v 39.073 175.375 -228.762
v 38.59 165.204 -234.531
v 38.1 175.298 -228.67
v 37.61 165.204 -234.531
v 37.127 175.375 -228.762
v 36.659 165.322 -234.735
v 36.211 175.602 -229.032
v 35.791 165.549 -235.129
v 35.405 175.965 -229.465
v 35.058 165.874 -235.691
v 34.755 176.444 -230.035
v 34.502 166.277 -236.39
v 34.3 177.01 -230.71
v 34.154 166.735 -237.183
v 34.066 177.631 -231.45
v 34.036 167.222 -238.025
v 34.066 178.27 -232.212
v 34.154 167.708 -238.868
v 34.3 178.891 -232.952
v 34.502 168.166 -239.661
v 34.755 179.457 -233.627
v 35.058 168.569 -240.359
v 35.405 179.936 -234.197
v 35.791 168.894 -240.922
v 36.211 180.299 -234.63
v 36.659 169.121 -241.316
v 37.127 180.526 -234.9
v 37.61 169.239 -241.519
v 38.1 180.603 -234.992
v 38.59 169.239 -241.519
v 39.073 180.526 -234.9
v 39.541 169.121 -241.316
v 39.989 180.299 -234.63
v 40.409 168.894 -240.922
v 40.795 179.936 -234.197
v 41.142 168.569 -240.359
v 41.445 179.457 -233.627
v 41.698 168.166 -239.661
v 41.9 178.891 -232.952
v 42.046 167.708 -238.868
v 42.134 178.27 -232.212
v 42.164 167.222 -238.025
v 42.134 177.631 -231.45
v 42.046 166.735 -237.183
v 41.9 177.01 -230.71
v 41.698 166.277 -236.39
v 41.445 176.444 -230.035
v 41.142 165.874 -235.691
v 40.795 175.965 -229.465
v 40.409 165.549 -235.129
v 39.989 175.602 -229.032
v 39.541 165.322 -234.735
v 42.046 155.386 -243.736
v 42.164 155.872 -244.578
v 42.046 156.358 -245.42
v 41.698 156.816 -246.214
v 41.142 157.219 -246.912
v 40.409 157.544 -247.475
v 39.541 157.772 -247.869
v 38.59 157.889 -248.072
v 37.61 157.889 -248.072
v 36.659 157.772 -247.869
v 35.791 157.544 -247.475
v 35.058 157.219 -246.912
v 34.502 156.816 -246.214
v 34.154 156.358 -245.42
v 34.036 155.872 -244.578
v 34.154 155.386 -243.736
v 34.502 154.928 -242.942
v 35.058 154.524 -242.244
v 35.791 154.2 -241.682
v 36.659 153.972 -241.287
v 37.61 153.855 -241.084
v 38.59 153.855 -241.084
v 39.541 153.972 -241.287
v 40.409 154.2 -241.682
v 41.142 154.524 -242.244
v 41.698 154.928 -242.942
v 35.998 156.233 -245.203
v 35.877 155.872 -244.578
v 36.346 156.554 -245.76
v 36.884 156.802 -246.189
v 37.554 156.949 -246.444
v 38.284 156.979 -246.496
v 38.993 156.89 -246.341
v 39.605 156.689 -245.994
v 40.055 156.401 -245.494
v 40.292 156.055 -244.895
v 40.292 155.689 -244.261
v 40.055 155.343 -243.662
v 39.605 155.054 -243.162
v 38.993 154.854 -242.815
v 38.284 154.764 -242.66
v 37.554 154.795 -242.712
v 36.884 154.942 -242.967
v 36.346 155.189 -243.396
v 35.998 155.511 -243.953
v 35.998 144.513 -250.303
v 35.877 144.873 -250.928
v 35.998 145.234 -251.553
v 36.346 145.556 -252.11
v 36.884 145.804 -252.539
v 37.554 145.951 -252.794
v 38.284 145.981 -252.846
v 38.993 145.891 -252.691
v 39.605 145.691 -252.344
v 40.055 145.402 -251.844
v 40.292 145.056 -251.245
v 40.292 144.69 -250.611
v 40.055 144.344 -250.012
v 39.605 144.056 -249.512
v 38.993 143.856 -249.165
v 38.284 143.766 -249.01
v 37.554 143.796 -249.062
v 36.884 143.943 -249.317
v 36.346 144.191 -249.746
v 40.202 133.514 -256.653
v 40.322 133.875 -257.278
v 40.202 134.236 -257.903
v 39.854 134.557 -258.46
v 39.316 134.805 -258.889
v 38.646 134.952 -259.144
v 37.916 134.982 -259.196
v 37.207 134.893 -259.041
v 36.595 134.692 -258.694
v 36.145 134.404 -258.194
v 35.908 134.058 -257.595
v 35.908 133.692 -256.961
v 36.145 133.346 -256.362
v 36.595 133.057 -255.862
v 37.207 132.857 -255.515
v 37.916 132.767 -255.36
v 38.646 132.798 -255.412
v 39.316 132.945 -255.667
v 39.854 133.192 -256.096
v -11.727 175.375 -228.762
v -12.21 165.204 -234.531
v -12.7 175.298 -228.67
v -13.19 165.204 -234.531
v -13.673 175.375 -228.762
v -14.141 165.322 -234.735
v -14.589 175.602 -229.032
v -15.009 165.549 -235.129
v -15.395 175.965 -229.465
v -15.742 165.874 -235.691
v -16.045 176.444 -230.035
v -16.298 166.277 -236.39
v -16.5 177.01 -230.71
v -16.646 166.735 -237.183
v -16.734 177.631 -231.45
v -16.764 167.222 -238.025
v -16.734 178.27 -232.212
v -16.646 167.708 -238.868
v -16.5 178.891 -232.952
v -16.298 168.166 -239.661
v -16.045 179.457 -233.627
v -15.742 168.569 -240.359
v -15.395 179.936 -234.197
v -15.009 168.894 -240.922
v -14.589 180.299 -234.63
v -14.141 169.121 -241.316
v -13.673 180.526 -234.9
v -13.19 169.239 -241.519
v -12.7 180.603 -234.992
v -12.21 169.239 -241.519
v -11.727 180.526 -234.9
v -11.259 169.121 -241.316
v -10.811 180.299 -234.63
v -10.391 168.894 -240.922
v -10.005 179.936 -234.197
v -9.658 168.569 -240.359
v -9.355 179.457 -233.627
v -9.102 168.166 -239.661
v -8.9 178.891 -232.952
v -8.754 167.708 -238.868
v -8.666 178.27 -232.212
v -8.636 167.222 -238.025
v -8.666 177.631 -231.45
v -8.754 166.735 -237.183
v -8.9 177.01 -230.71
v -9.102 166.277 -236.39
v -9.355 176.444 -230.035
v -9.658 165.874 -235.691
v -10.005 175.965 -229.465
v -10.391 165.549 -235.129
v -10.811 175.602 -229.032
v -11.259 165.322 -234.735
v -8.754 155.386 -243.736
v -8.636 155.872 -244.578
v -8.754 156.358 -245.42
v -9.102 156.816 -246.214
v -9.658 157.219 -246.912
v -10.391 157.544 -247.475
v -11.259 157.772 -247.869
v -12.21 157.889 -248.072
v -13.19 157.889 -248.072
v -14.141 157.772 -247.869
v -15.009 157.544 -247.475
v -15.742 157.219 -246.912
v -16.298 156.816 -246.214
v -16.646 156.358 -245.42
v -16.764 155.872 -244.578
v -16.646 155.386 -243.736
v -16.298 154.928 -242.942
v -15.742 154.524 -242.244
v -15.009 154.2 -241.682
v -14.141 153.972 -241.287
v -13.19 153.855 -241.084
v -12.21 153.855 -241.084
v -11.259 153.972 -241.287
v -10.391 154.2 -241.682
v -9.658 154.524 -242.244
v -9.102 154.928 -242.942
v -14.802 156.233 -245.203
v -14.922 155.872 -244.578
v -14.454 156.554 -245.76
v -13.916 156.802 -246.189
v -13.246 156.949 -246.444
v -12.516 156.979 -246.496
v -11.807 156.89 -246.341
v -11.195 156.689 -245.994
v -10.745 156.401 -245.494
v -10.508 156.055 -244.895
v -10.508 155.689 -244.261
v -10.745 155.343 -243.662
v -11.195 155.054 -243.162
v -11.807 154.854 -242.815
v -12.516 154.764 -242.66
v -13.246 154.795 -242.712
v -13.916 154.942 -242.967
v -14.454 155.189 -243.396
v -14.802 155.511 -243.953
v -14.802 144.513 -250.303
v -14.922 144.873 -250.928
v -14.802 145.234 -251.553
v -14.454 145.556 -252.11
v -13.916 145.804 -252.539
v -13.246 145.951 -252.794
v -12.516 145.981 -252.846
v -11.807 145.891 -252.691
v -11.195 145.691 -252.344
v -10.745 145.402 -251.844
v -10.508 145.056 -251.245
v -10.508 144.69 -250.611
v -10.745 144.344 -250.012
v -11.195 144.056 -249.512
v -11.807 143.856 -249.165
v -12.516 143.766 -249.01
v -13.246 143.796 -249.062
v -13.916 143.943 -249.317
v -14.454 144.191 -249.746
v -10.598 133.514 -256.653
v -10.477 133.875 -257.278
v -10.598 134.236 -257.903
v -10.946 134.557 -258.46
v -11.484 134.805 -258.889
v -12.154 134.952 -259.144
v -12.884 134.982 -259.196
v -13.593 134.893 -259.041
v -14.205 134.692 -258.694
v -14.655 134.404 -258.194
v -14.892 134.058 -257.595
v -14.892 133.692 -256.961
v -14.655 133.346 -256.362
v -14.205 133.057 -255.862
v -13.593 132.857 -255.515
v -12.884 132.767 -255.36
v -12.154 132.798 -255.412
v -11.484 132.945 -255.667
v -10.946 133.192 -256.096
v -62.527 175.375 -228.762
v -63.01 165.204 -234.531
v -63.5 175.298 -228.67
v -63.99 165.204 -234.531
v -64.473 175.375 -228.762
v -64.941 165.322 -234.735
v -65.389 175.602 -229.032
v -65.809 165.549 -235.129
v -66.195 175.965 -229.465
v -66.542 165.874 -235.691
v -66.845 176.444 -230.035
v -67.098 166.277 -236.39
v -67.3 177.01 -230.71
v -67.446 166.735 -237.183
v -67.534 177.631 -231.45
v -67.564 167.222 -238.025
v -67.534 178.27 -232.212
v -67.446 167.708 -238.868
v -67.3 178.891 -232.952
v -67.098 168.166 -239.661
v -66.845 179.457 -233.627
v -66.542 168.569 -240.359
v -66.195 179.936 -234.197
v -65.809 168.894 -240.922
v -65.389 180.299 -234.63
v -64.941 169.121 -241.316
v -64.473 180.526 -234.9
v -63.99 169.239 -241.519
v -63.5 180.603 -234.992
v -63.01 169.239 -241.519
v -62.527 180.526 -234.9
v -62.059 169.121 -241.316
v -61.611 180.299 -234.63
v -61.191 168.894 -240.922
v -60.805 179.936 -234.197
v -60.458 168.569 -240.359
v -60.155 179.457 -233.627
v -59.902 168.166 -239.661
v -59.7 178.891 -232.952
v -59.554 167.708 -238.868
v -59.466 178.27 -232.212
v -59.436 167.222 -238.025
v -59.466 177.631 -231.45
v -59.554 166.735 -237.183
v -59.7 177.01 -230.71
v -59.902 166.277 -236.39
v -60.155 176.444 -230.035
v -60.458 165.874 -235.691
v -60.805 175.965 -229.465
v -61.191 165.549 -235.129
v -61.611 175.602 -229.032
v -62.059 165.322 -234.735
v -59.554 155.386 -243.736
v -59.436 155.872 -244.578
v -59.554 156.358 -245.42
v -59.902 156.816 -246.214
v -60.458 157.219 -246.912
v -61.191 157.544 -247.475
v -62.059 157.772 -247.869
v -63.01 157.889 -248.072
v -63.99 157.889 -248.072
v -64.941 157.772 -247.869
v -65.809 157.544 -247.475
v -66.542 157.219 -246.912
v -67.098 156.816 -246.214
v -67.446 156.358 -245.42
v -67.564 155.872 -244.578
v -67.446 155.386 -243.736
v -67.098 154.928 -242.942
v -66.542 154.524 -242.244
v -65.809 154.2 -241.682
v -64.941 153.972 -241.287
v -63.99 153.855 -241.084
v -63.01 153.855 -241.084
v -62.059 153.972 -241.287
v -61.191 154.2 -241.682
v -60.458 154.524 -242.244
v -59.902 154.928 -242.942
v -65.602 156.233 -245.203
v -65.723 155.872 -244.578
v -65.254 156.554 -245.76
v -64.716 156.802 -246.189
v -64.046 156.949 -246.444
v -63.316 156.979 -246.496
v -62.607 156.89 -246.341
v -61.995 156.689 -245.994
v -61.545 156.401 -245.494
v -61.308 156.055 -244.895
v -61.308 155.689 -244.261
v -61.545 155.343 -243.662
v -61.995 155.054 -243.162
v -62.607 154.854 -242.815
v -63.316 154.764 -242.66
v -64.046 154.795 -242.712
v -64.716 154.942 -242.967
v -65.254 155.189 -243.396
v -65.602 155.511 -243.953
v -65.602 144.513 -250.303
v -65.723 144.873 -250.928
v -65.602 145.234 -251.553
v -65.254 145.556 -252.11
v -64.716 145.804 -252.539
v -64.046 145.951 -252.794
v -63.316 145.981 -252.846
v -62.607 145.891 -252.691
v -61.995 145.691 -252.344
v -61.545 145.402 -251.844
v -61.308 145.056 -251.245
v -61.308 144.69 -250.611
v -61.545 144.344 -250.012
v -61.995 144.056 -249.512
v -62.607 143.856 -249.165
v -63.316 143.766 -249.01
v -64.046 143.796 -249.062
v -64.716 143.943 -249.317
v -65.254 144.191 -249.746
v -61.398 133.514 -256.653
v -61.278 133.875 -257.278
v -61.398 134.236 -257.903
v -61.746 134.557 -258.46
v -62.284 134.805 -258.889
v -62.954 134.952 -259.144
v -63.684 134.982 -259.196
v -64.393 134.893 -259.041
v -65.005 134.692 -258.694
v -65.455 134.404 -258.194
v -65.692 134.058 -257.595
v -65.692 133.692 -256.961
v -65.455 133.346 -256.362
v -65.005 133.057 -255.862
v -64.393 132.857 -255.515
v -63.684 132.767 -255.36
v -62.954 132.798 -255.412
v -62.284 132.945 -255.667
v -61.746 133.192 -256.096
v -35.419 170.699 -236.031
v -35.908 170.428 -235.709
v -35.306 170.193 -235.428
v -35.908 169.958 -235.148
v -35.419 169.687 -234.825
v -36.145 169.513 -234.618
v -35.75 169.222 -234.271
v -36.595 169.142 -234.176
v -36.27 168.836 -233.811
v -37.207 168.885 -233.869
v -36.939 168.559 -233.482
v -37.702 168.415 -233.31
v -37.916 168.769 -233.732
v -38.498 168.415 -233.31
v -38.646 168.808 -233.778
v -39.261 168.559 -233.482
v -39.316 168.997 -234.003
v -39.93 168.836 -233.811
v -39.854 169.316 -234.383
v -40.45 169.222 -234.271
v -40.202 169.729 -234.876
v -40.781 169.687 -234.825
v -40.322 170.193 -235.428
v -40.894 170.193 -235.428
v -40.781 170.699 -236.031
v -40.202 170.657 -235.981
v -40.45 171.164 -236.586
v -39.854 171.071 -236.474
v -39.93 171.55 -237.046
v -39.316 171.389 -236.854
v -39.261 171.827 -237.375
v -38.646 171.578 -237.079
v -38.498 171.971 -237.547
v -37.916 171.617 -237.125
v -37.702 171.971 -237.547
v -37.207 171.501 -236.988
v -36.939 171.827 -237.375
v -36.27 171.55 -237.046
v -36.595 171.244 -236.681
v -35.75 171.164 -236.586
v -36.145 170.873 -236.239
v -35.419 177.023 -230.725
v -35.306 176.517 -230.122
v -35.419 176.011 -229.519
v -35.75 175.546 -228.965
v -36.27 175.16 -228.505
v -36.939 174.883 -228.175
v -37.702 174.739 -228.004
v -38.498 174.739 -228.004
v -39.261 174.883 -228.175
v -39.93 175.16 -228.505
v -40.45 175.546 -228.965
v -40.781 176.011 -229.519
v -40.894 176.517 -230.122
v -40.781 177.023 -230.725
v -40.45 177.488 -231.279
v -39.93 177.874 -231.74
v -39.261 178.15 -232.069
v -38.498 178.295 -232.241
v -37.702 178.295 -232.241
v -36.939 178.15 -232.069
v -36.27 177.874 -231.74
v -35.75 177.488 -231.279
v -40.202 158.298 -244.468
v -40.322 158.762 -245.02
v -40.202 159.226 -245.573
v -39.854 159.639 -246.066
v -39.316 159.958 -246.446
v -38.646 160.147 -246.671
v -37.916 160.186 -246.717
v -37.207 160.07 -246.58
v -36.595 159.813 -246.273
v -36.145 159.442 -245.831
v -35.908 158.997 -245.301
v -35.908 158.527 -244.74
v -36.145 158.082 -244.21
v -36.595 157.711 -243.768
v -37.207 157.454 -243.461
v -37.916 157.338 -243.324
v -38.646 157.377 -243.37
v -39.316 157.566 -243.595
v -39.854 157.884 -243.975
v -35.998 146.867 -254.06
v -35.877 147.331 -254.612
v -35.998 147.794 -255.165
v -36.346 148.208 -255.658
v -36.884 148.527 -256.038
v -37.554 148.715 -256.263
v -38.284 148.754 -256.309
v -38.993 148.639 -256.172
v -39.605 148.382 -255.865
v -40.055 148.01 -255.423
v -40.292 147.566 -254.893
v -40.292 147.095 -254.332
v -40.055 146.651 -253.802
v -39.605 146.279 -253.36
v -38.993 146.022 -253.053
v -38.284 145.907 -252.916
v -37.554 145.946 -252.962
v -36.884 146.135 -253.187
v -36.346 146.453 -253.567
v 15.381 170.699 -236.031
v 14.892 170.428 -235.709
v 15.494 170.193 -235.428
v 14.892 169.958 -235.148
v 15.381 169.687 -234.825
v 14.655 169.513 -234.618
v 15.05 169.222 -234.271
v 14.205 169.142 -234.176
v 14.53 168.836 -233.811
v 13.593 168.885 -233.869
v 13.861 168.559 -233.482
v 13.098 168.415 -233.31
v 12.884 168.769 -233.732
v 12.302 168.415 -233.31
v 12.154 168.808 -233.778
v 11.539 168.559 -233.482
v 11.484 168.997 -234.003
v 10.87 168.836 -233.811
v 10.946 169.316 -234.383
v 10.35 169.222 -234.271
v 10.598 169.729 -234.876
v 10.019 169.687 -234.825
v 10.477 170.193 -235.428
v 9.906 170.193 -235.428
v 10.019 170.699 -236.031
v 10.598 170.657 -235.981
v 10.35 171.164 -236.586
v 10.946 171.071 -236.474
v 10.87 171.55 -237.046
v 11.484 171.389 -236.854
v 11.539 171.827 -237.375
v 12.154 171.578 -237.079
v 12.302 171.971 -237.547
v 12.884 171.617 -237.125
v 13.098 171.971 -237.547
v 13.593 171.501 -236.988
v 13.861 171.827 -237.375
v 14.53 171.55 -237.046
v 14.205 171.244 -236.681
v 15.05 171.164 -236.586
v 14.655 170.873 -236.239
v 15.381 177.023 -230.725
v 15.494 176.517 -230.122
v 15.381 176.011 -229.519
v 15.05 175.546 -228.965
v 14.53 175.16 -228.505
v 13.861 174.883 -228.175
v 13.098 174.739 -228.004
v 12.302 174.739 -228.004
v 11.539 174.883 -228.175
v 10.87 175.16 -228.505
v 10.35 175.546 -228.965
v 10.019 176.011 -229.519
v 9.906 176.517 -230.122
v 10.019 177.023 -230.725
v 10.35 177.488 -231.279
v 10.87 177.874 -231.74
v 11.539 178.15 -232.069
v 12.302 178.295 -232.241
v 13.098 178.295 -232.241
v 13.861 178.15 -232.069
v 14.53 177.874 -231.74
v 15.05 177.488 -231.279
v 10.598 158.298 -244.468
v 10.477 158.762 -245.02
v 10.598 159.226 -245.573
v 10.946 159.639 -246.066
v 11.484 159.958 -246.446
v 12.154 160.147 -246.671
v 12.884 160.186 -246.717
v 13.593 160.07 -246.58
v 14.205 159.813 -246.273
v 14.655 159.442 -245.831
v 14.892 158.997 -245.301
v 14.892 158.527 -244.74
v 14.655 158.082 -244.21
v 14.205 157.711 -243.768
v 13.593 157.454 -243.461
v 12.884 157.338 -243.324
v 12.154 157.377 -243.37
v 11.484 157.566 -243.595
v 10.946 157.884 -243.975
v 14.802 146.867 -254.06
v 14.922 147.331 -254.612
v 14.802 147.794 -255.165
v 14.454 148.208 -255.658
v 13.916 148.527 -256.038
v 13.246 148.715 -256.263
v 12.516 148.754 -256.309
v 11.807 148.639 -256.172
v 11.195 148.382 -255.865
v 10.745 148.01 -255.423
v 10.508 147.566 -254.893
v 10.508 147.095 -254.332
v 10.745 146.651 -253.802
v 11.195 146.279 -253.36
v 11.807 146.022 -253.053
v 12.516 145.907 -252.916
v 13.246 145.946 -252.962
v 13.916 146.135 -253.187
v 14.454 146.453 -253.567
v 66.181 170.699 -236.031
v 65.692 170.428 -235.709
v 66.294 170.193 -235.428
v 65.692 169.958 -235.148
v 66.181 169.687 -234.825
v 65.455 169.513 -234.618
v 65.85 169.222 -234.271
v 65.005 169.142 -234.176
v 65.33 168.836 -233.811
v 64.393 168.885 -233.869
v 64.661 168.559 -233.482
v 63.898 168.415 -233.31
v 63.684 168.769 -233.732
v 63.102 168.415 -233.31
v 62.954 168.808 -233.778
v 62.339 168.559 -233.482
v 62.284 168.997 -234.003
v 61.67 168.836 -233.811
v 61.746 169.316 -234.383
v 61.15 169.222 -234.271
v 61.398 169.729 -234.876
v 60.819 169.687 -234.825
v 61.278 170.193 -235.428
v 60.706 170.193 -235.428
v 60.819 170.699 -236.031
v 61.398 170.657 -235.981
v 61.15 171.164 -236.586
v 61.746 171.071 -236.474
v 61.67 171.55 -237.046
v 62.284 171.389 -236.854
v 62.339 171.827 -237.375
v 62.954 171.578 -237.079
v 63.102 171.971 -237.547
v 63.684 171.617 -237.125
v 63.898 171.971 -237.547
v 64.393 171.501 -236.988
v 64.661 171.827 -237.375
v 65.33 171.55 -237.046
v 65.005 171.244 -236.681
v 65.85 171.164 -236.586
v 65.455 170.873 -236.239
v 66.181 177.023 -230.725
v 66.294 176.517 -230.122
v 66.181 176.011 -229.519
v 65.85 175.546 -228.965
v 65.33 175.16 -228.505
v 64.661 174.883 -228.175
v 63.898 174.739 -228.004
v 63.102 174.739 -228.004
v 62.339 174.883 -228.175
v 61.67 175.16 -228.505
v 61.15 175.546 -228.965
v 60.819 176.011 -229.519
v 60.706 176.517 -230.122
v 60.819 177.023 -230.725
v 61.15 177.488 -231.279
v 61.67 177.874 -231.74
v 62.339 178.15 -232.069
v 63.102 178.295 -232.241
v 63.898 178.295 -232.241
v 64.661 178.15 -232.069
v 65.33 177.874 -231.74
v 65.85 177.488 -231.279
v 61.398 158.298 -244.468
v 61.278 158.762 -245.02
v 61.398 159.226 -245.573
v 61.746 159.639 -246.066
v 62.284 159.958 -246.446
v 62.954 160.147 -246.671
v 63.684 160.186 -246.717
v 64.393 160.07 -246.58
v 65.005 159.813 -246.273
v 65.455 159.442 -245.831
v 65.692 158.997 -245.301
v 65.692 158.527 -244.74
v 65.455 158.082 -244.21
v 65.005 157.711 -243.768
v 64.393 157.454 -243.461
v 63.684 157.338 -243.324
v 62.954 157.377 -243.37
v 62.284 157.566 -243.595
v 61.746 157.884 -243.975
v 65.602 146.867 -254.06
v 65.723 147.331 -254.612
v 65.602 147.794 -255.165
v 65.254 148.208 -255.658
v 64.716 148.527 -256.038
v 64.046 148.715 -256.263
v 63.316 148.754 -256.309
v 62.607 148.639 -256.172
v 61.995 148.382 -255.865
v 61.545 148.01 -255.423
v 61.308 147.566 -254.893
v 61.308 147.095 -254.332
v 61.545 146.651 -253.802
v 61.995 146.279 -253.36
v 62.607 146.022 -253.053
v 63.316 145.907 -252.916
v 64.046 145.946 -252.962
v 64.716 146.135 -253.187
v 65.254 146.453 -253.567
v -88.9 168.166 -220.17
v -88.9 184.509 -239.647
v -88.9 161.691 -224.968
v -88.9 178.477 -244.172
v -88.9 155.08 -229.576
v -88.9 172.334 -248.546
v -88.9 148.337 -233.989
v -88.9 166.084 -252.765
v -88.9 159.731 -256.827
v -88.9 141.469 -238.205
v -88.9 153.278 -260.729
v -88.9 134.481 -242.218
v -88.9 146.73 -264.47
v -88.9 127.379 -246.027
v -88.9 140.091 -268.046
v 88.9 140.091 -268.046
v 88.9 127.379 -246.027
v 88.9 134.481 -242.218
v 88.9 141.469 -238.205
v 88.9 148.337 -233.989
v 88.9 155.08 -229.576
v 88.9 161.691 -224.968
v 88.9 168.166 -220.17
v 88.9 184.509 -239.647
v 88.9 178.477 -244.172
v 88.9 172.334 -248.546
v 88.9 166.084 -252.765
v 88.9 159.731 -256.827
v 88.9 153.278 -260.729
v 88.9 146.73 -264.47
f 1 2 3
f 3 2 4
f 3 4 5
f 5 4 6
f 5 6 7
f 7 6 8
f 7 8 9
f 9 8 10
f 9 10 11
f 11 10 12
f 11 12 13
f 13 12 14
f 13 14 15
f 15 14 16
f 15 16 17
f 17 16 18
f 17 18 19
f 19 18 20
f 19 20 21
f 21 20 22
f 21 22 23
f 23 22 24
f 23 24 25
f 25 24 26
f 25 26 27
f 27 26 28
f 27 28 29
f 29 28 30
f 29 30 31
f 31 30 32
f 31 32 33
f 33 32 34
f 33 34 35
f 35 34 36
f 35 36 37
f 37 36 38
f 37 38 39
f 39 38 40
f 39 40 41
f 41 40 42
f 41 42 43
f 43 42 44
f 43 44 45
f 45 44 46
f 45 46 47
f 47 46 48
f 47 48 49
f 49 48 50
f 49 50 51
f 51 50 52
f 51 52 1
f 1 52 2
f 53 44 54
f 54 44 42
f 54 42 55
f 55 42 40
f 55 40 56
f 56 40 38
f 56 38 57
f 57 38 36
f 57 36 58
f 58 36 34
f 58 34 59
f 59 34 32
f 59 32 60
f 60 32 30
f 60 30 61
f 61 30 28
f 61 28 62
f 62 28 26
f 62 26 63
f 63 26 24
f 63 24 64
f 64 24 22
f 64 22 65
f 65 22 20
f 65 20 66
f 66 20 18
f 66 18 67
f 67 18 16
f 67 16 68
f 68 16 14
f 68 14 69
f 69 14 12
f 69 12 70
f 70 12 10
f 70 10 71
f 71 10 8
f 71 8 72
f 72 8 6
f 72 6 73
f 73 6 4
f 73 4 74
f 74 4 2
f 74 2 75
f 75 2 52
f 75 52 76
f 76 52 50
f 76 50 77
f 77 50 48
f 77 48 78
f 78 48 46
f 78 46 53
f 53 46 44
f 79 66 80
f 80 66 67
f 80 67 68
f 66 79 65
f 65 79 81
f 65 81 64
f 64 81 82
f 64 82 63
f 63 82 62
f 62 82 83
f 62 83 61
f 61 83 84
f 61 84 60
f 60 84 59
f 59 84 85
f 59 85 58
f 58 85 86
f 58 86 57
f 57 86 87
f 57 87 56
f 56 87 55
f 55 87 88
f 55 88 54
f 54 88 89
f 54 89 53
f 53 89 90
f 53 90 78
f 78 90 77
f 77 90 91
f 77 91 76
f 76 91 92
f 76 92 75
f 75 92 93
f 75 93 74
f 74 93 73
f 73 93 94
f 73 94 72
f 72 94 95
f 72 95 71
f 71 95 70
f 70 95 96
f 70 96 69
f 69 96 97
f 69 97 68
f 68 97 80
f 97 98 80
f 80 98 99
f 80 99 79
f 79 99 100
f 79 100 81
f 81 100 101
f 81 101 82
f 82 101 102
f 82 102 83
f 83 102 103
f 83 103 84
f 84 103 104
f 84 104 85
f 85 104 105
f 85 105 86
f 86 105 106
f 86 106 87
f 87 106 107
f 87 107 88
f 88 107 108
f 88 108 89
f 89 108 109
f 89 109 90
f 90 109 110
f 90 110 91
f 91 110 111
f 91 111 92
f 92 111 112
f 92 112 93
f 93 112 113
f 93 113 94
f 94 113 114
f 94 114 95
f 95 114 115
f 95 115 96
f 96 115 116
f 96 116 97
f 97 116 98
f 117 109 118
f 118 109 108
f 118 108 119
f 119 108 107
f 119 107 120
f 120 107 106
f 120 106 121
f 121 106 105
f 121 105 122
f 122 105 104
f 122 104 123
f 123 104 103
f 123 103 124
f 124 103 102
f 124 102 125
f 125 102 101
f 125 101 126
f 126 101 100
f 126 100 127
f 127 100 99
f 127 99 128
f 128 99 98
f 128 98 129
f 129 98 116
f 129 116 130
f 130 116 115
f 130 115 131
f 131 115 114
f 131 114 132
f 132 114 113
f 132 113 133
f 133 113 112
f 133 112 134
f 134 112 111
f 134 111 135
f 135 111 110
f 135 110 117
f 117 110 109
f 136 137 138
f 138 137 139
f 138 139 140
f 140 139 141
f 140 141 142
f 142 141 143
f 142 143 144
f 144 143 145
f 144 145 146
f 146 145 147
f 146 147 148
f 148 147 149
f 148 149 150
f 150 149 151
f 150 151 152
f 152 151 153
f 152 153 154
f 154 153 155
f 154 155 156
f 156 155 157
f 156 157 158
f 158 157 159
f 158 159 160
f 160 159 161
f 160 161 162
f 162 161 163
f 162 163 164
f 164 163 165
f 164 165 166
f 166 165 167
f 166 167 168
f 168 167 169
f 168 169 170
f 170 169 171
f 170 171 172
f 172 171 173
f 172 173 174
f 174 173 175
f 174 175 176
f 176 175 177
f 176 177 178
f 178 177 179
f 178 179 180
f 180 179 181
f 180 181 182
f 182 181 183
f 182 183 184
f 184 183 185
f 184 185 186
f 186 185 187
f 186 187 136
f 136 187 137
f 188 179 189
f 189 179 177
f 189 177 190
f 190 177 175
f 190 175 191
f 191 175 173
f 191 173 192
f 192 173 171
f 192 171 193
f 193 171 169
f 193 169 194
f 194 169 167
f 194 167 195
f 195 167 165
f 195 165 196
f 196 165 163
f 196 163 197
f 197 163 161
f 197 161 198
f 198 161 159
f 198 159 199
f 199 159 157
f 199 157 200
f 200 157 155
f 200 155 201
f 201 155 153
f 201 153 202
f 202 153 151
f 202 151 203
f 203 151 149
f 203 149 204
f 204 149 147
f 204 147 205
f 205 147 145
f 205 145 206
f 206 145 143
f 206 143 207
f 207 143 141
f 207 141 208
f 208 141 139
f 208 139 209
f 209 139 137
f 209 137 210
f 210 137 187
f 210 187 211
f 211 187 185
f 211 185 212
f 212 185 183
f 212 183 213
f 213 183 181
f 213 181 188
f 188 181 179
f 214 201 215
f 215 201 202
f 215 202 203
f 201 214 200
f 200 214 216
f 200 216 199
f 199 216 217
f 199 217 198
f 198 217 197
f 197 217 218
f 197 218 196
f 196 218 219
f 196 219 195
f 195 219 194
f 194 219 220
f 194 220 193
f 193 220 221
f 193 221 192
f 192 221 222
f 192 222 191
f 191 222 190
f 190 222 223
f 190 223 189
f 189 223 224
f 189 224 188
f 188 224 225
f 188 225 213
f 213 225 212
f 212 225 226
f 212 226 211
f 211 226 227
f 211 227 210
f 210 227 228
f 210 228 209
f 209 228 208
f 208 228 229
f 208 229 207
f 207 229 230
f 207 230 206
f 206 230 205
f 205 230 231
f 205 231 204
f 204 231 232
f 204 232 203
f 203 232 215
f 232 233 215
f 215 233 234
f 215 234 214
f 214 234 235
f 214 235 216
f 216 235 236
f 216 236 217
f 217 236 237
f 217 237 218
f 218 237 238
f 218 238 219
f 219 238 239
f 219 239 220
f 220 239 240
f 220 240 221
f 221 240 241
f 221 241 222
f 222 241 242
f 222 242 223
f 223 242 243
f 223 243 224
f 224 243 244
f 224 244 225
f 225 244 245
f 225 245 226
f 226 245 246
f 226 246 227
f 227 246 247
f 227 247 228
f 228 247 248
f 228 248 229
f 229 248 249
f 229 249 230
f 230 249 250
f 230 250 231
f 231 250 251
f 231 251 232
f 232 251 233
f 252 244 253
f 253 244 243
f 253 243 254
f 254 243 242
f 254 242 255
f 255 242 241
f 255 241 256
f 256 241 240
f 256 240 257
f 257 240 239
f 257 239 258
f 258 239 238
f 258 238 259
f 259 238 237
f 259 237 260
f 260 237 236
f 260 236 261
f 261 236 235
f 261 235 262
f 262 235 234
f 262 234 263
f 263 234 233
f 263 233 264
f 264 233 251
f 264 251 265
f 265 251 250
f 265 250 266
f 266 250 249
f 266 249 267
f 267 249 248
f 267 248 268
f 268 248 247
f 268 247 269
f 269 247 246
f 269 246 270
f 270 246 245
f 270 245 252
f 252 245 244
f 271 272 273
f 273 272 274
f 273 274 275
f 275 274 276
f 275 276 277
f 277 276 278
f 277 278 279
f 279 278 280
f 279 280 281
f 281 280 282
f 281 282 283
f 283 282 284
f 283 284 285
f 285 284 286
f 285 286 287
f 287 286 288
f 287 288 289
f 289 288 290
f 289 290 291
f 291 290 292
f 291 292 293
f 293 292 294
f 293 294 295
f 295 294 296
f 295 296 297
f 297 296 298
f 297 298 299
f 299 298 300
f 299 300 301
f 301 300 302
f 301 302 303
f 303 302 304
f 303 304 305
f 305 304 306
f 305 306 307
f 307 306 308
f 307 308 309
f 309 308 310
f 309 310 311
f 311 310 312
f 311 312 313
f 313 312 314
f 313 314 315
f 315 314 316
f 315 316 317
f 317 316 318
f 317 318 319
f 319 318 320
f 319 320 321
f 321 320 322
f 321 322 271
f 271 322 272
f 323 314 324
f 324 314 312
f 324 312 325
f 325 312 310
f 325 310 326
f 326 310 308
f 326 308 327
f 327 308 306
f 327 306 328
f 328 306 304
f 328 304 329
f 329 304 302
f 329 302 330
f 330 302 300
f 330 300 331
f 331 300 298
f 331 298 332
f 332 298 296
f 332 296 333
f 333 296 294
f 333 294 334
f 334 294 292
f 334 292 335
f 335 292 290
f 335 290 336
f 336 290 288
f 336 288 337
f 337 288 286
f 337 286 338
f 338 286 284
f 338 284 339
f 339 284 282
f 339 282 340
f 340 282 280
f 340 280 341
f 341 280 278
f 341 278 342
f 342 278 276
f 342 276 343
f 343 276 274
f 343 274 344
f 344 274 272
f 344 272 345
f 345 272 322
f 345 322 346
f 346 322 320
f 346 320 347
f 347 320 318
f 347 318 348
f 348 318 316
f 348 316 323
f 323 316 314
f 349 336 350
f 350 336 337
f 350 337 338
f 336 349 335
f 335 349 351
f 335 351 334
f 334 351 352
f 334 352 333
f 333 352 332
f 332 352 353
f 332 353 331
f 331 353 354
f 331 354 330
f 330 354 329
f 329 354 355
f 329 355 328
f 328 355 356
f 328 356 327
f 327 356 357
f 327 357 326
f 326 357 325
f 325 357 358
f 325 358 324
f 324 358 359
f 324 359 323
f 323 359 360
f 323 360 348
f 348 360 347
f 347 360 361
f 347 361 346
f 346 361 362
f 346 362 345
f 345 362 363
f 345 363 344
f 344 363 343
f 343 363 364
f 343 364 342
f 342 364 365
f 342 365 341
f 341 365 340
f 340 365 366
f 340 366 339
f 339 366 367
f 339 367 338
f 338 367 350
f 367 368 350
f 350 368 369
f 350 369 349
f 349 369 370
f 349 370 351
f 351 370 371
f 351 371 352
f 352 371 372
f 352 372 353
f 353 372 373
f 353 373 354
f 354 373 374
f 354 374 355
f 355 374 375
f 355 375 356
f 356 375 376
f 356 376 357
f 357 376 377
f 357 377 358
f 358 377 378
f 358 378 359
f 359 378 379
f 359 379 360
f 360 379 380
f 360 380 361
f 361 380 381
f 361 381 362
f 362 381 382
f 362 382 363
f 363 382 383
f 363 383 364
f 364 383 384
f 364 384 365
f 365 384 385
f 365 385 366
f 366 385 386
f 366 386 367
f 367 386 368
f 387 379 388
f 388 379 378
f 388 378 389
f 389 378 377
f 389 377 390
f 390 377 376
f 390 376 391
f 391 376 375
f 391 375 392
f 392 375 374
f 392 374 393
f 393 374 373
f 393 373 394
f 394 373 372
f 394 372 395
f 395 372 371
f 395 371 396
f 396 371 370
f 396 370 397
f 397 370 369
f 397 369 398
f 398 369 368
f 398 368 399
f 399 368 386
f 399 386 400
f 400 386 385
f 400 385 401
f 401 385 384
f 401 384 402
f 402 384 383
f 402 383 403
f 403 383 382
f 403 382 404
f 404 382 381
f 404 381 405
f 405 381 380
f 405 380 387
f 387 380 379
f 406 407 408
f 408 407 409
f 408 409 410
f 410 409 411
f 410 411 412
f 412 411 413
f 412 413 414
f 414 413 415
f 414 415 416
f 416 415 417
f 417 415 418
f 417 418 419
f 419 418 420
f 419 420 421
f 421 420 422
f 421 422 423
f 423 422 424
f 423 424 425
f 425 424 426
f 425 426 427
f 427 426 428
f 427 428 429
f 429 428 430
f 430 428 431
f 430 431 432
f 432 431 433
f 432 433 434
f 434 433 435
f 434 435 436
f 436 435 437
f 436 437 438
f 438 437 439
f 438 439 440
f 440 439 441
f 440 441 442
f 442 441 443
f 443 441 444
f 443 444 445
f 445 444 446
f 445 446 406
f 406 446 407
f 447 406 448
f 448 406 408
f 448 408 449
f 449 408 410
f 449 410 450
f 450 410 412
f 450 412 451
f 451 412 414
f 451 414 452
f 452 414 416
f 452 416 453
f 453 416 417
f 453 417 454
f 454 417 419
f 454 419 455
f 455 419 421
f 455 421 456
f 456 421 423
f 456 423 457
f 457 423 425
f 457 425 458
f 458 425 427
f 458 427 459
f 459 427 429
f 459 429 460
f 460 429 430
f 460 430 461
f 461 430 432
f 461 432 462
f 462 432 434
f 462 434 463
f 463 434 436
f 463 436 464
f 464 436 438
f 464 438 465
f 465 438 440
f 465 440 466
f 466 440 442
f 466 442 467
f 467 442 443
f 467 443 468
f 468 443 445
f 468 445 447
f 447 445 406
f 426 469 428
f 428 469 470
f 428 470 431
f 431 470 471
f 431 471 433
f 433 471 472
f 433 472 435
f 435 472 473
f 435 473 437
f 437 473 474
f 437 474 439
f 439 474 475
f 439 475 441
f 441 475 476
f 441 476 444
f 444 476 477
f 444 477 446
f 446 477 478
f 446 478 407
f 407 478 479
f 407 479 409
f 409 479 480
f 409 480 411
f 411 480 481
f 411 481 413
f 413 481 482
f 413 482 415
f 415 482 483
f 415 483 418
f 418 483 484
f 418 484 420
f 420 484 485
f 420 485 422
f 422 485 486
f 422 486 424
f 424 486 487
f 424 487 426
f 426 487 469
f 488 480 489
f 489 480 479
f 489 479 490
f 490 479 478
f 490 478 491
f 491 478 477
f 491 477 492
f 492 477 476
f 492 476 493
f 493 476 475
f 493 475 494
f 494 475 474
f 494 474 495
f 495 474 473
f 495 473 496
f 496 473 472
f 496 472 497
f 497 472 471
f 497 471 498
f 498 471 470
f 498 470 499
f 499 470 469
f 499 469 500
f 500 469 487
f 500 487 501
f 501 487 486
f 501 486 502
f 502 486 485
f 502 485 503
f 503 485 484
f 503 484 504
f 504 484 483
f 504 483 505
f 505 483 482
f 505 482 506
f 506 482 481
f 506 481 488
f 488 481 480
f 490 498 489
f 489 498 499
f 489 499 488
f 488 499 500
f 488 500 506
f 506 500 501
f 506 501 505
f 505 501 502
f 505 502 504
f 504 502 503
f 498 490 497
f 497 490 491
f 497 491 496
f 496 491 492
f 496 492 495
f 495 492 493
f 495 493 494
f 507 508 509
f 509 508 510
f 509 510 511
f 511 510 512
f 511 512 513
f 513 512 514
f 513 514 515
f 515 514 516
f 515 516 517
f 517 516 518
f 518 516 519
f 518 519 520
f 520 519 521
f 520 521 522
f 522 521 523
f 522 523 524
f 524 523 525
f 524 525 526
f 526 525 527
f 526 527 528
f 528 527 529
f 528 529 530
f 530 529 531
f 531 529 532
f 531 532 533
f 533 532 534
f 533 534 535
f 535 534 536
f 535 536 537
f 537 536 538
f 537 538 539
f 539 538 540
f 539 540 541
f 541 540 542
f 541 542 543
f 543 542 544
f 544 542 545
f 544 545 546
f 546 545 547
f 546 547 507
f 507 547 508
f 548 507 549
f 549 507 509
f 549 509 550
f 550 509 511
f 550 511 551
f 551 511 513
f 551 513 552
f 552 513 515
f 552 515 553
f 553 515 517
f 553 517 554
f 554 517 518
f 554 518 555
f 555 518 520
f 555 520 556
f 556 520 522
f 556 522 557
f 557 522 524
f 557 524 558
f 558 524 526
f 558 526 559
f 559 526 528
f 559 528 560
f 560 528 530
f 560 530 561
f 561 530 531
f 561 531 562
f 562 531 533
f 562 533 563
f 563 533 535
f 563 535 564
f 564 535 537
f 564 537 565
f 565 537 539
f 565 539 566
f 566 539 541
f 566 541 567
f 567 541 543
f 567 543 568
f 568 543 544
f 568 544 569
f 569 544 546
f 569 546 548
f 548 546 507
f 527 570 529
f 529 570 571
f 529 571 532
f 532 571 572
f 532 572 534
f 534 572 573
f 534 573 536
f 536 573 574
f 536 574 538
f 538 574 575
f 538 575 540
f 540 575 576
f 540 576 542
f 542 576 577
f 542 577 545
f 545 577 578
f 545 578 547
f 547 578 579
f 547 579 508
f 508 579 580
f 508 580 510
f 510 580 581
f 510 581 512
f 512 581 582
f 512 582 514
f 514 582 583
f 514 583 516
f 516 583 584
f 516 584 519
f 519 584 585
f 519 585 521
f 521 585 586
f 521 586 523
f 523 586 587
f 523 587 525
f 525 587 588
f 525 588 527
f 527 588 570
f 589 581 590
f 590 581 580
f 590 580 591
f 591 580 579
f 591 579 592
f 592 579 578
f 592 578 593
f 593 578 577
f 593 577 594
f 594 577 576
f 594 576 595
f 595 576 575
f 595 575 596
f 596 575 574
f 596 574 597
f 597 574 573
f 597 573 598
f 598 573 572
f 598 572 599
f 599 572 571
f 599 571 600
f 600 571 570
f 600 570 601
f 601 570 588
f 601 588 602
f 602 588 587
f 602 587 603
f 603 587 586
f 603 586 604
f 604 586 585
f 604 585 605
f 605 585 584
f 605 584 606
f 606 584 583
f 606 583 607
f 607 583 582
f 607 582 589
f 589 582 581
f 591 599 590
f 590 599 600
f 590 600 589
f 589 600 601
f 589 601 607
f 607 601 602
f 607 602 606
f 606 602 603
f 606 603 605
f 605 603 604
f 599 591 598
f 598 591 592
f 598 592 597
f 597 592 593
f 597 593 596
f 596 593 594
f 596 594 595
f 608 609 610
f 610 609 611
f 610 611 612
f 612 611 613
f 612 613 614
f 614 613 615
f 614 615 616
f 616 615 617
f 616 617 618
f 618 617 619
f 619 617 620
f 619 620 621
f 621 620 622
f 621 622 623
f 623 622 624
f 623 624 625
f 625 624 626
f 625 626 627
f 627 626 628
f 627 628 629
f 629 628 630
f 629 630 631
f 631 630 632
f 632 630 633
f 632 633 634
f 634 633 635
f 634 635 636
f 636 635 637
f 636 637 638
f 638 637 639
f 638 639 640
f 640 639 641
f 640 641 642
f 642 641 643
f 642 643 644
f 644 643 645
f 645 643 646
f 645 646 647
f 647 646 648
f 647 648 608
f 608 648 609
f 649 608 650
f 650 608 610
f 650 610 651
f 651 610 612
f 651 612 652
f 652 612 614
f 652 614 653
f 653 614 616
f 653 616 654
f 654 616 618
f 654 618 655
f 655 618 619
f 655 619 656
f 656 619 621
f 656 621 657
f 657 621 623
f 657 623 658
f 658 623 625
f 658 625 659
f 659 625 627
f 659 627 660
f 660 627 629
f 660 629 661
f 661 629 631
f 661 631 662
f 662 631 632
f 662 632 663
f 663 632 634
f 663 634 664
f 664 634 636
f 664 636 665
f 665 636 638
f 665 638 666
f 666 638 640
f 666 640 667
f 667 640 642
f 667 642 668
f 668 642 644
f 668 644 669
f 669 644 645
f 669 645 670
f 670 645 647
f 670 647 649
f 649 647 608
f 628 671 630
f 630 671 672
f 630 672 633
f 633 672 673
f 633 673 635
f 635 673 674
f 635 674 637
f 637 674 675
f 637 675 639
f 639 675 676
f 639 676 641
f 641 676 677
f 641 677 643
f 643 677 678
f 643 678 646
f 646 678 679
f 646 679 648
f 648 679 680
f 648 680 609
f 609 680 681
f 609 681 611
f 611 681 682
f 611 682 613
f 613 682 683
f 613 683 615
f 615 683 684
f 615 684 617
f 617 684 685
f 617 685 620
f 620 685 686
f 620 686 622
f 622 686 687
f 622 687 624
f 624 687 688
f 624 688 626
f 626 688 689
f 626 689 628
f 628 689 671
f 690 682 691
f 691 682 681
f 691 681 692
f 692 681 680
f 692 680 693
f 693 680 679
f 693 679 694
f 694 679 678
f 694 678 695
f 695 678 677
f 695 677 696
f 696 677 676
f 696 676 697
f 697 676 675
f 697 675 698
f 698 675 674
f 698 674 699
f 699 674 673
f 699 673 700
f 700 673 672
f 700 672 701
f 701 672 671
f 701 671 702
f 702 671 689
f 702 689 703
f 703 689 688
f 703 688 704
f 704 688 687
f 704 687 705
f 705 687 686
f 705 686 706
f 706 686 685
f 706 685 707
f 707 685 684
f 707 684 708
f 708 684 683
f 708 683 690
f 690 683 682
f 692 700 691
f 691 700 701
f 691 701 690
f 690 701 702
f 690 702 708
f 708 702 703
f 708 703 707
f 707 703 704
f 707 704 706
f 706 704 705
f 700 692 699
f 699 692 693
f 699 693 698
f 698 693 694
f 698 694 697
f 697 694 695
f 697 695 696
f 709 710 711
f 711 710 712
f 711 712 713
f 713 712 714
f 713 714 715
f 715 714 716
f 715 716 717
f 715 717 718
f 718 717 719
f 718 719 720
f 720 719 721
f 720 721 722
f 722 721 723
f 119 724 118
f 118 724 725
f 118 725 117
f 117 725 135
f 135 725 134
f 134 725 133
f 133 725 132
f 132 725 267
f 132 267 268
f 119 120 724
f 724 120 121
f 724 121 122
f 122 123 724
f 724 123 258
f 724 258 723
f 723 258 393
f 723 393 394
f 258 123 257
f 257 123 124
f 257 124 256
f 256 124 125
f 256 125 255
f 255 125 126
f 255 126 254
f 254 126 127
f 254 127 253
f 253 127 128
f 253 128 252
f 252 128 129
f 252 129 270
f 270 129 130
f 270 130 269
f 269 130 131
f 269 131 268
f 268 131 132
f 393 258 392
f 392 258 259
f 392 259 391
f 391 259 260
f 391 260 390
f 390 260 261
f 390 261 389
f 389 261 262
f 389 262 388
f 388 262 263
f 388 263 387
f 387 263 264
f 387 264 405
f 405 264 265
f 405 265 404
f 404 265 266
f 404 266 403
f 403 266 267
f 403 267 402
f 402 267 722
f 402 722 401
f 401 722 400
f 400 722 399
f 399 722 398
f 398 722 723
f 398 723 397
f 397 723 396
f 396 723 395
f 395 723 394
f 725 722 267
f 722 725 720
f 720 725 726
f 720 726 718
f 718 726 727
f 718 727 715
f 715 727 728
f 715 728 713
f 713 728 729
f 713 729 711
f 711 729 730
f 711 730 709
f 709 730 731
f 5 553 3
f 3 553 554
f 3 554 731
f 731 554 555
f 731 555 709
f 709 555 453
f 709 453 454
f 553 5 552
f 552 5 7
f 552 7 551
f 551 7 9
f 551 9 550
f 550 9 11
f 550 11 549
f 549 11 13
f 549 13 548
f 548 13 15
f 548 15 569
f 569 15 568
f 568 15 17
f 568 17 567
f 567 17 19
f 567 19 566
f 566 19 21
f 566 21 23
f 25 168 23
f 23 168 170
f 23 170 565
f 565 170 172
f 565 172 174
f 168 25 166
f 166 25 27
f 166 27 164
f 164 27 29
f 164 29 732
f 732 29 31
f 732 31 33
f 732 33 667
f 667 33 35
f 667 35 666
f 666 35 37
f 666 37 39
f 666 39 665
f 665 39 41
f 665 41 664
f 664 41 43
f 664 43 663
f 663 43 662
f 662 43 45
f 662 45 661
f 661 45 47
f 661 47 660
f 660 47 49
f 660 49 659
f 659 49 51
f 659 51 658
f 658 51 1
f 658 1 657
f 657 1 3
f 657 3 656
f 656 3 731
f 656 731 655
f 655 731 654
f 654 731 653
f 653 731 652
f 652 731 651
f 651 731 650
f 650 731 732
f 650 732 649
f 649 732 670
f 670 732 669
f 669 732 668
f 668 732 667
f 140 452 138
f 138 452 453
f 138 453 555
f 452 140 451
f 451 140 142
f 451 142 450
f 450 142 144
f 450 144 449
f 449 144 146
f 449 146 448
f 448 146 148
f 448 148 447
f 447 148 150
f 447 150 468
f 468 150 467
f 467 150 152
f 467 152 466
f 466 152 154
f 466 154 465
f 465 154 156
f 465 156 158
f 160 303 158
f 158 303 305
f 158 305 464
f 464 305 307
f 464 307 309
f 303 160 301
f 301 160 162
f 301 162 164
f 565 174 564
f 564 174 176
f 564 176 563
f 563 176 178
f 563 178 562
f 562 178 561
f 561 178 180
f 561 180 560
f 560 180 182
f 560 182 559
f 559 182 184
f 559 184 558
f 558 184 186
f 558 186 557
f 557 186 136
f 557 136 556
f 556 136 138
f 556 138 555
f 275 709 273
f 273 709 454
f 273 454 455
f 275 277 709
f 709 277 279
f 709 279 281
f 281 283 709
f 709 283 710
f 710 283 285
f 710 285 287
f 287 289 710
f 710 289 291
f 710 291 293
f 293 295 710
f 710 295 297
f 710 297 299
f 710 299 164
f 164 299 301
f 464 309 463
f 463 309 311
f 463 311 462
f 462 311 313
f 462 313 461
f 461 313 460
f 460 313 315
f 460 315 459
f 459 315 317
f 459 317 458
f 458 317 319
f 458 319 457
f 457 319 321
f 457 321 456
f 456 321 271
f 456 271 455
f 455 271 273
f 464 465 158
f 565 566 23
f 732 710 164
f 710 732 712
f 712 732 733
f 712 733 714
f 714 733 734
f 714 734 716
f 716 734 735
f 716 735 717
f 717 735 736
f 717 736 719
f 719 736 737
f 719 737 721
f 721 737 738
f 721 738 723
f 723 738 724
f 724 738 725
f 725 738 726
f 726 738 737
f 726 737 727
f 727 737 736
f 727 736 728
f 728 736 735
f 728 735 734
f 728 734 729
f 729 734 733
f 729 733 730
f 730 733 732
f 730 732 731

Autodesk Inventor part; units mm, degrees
ref_plane "YZ Plane" through (0, 0, 0) normal (1, 0, 0) x (0, 1, 0)
ref_plane "XZ Plane" through (0, 0, 0) normal (0, 1, 0) x (-1, 0, 0)
sketch "Sketch1" plane through (0, 0, 0) normal (1, 0, 0) x (0, 1, 0)
  arc A0 (0, -277.0467) -> (178.0822, -212.2301) centre (0, 0) ccw
  arc A1 (0, -302.4467) -> (194.409, -231.6876) centre (0, 0) ccw
  line L0 (178.0822, -212.2301) -> (194.409, -231.6876)
  line L1 (0, -277.0467) -> (0, -302.4467)
  line L2 (168.1662, -220.1704) -> (184.6802, -239.851)
  line L3 (184.6802, -239.851) -> (204.1378, -223.5242)
  line L4 (204.1378, -223.5242) -> (187.811, -204.0667)
  line L5 (187.811, -204.0667) -> (168.3534, -220.3935)
  line L6 (168.3534, -220.3935) -> (204.1378, -223.5242) construction
  line L7 (184.6802, -239.851) -> (187.811, -204.0667) construction
  arc A2 (0, -277.0467) -> (138.5234, -239.9295) centre (0, 0) ccw
  line L8 (138.5234, -239.9295) -> (151.2234, -261.9266)
  line L9 (162.2219, -255.5766) -> (140.2248, -268.2766)
  line L10 (140.2248, -268.2766) -> (127.3792, -246.0273)
  line L11 (127.5248, -246.2795) -> (149.5219, -233.5795)
  line L12 (149.5219, -233.5795) -> (162.2219, -255.5766)
  line L13 (162.2219, -255.5766) -> (127.5248, -246.2795) construction
  line L14 (140.2248, -268.2766) -> (149.5219, -233.5795) construction
  point P0 (186.2456, -221.9589)
  point P1 (184.5088, -239.6467)
  point P2 (144.8734, -250.928)
  point P3 (140.0915, -268.0455)
  dimension "d1" = 277.0467
  dimension "d2" = 40
  dimension "d4" = 25.4
  dimension "d5" = 25.4
  dimension "d32" = 30
  dimension "d33" = 25.4
extrude "Extrusion1" add sketch "Sketch1" along normal mid plane 177.8 contours A0 L11 L10 | L11 L12 A1 L8 | L8 A1 L10 L11 | A0 L2 A1 L12 L11
sketch "Sketch3" plane through (-88.9, 168.1662, -220.1704) normal (0, 0.7660444, 0.6427876) x (1, 0, 0)
  line L0 (88.9, 0) -> (88.9, 25.6912) projected
  line L1 (177.8, 25.4245) -> (177.8, 0) projected
  point P0 (88.9, -276.7555)
  point P1 (152.4, 12.9912)
  dimension "d17" = 25.4
  dimension "d18" = 12.7
hole "Hole2" at (63.5, 176.5168, -230.1223) direction (0, -0.7660444, -0.6427876) diameter 4.445 depth 38.1 counterbore diameter 5.588 counterbore depth 8.255
pattern_linear "Rectangular Pattern2" count 3 spacing 50.8 along (-1, 0, 0) of "Hole2"
sketch "Sketch5" plane through (-88.9, 140.2248, -268.2766) normal (0, -0.8660254, -0.5) x (1, 0, 0)
  point P0 (88.9, 302.4467)
sketch "Sketch6" plane through (-88.9, 140.2248, -268.2766) normal (0, -0.8660254, -0.5) x (1, 0, 0)
  line L0 (0, 0.2668) -> (0, 25.6912) projected
  line L1 (0, 25.6912) -> (177.8, 25.6912) projected
  point P0 (88.9, 302.4467)
  point P1 (25.4, 12.7)
  dimension "d50" = 25.4
  dimension "d51" = 12.9912
hole "Hole3" at (-63.5, 133.8748, -257.278) direction (0, 0.8660254, 0.5) diameter 4.445 end through all
ref_plane "Work Plane1" through (-88.9, 162.0885, -255.3455) normal (0, -0.8660254, -0.5) x (1, 0, 0)
sketch "Sketch7" plane through (-88.9, 162.0885, -255.3455) normal (0, -0.8660254, -0.5) x (1, 0, 0)
  circle A0 centre (25.4, 12.4332) radius 2.2225 projected
  circle A1 centre (25.4, 12.4332) radius 4.064
  point P0 (88.9, 302.18)
  dimension "d44" = 8.128
extrude "Extrusion2" cut sketch "Sketch7" against normal through all contours A0 | A1
pattern_linear "Rectangular Pattern3" count 3 spacing 50.8 along (1, 0, 0) of "Extrusion2", "Hole3"
properties part number "HoodBraceExtension"
